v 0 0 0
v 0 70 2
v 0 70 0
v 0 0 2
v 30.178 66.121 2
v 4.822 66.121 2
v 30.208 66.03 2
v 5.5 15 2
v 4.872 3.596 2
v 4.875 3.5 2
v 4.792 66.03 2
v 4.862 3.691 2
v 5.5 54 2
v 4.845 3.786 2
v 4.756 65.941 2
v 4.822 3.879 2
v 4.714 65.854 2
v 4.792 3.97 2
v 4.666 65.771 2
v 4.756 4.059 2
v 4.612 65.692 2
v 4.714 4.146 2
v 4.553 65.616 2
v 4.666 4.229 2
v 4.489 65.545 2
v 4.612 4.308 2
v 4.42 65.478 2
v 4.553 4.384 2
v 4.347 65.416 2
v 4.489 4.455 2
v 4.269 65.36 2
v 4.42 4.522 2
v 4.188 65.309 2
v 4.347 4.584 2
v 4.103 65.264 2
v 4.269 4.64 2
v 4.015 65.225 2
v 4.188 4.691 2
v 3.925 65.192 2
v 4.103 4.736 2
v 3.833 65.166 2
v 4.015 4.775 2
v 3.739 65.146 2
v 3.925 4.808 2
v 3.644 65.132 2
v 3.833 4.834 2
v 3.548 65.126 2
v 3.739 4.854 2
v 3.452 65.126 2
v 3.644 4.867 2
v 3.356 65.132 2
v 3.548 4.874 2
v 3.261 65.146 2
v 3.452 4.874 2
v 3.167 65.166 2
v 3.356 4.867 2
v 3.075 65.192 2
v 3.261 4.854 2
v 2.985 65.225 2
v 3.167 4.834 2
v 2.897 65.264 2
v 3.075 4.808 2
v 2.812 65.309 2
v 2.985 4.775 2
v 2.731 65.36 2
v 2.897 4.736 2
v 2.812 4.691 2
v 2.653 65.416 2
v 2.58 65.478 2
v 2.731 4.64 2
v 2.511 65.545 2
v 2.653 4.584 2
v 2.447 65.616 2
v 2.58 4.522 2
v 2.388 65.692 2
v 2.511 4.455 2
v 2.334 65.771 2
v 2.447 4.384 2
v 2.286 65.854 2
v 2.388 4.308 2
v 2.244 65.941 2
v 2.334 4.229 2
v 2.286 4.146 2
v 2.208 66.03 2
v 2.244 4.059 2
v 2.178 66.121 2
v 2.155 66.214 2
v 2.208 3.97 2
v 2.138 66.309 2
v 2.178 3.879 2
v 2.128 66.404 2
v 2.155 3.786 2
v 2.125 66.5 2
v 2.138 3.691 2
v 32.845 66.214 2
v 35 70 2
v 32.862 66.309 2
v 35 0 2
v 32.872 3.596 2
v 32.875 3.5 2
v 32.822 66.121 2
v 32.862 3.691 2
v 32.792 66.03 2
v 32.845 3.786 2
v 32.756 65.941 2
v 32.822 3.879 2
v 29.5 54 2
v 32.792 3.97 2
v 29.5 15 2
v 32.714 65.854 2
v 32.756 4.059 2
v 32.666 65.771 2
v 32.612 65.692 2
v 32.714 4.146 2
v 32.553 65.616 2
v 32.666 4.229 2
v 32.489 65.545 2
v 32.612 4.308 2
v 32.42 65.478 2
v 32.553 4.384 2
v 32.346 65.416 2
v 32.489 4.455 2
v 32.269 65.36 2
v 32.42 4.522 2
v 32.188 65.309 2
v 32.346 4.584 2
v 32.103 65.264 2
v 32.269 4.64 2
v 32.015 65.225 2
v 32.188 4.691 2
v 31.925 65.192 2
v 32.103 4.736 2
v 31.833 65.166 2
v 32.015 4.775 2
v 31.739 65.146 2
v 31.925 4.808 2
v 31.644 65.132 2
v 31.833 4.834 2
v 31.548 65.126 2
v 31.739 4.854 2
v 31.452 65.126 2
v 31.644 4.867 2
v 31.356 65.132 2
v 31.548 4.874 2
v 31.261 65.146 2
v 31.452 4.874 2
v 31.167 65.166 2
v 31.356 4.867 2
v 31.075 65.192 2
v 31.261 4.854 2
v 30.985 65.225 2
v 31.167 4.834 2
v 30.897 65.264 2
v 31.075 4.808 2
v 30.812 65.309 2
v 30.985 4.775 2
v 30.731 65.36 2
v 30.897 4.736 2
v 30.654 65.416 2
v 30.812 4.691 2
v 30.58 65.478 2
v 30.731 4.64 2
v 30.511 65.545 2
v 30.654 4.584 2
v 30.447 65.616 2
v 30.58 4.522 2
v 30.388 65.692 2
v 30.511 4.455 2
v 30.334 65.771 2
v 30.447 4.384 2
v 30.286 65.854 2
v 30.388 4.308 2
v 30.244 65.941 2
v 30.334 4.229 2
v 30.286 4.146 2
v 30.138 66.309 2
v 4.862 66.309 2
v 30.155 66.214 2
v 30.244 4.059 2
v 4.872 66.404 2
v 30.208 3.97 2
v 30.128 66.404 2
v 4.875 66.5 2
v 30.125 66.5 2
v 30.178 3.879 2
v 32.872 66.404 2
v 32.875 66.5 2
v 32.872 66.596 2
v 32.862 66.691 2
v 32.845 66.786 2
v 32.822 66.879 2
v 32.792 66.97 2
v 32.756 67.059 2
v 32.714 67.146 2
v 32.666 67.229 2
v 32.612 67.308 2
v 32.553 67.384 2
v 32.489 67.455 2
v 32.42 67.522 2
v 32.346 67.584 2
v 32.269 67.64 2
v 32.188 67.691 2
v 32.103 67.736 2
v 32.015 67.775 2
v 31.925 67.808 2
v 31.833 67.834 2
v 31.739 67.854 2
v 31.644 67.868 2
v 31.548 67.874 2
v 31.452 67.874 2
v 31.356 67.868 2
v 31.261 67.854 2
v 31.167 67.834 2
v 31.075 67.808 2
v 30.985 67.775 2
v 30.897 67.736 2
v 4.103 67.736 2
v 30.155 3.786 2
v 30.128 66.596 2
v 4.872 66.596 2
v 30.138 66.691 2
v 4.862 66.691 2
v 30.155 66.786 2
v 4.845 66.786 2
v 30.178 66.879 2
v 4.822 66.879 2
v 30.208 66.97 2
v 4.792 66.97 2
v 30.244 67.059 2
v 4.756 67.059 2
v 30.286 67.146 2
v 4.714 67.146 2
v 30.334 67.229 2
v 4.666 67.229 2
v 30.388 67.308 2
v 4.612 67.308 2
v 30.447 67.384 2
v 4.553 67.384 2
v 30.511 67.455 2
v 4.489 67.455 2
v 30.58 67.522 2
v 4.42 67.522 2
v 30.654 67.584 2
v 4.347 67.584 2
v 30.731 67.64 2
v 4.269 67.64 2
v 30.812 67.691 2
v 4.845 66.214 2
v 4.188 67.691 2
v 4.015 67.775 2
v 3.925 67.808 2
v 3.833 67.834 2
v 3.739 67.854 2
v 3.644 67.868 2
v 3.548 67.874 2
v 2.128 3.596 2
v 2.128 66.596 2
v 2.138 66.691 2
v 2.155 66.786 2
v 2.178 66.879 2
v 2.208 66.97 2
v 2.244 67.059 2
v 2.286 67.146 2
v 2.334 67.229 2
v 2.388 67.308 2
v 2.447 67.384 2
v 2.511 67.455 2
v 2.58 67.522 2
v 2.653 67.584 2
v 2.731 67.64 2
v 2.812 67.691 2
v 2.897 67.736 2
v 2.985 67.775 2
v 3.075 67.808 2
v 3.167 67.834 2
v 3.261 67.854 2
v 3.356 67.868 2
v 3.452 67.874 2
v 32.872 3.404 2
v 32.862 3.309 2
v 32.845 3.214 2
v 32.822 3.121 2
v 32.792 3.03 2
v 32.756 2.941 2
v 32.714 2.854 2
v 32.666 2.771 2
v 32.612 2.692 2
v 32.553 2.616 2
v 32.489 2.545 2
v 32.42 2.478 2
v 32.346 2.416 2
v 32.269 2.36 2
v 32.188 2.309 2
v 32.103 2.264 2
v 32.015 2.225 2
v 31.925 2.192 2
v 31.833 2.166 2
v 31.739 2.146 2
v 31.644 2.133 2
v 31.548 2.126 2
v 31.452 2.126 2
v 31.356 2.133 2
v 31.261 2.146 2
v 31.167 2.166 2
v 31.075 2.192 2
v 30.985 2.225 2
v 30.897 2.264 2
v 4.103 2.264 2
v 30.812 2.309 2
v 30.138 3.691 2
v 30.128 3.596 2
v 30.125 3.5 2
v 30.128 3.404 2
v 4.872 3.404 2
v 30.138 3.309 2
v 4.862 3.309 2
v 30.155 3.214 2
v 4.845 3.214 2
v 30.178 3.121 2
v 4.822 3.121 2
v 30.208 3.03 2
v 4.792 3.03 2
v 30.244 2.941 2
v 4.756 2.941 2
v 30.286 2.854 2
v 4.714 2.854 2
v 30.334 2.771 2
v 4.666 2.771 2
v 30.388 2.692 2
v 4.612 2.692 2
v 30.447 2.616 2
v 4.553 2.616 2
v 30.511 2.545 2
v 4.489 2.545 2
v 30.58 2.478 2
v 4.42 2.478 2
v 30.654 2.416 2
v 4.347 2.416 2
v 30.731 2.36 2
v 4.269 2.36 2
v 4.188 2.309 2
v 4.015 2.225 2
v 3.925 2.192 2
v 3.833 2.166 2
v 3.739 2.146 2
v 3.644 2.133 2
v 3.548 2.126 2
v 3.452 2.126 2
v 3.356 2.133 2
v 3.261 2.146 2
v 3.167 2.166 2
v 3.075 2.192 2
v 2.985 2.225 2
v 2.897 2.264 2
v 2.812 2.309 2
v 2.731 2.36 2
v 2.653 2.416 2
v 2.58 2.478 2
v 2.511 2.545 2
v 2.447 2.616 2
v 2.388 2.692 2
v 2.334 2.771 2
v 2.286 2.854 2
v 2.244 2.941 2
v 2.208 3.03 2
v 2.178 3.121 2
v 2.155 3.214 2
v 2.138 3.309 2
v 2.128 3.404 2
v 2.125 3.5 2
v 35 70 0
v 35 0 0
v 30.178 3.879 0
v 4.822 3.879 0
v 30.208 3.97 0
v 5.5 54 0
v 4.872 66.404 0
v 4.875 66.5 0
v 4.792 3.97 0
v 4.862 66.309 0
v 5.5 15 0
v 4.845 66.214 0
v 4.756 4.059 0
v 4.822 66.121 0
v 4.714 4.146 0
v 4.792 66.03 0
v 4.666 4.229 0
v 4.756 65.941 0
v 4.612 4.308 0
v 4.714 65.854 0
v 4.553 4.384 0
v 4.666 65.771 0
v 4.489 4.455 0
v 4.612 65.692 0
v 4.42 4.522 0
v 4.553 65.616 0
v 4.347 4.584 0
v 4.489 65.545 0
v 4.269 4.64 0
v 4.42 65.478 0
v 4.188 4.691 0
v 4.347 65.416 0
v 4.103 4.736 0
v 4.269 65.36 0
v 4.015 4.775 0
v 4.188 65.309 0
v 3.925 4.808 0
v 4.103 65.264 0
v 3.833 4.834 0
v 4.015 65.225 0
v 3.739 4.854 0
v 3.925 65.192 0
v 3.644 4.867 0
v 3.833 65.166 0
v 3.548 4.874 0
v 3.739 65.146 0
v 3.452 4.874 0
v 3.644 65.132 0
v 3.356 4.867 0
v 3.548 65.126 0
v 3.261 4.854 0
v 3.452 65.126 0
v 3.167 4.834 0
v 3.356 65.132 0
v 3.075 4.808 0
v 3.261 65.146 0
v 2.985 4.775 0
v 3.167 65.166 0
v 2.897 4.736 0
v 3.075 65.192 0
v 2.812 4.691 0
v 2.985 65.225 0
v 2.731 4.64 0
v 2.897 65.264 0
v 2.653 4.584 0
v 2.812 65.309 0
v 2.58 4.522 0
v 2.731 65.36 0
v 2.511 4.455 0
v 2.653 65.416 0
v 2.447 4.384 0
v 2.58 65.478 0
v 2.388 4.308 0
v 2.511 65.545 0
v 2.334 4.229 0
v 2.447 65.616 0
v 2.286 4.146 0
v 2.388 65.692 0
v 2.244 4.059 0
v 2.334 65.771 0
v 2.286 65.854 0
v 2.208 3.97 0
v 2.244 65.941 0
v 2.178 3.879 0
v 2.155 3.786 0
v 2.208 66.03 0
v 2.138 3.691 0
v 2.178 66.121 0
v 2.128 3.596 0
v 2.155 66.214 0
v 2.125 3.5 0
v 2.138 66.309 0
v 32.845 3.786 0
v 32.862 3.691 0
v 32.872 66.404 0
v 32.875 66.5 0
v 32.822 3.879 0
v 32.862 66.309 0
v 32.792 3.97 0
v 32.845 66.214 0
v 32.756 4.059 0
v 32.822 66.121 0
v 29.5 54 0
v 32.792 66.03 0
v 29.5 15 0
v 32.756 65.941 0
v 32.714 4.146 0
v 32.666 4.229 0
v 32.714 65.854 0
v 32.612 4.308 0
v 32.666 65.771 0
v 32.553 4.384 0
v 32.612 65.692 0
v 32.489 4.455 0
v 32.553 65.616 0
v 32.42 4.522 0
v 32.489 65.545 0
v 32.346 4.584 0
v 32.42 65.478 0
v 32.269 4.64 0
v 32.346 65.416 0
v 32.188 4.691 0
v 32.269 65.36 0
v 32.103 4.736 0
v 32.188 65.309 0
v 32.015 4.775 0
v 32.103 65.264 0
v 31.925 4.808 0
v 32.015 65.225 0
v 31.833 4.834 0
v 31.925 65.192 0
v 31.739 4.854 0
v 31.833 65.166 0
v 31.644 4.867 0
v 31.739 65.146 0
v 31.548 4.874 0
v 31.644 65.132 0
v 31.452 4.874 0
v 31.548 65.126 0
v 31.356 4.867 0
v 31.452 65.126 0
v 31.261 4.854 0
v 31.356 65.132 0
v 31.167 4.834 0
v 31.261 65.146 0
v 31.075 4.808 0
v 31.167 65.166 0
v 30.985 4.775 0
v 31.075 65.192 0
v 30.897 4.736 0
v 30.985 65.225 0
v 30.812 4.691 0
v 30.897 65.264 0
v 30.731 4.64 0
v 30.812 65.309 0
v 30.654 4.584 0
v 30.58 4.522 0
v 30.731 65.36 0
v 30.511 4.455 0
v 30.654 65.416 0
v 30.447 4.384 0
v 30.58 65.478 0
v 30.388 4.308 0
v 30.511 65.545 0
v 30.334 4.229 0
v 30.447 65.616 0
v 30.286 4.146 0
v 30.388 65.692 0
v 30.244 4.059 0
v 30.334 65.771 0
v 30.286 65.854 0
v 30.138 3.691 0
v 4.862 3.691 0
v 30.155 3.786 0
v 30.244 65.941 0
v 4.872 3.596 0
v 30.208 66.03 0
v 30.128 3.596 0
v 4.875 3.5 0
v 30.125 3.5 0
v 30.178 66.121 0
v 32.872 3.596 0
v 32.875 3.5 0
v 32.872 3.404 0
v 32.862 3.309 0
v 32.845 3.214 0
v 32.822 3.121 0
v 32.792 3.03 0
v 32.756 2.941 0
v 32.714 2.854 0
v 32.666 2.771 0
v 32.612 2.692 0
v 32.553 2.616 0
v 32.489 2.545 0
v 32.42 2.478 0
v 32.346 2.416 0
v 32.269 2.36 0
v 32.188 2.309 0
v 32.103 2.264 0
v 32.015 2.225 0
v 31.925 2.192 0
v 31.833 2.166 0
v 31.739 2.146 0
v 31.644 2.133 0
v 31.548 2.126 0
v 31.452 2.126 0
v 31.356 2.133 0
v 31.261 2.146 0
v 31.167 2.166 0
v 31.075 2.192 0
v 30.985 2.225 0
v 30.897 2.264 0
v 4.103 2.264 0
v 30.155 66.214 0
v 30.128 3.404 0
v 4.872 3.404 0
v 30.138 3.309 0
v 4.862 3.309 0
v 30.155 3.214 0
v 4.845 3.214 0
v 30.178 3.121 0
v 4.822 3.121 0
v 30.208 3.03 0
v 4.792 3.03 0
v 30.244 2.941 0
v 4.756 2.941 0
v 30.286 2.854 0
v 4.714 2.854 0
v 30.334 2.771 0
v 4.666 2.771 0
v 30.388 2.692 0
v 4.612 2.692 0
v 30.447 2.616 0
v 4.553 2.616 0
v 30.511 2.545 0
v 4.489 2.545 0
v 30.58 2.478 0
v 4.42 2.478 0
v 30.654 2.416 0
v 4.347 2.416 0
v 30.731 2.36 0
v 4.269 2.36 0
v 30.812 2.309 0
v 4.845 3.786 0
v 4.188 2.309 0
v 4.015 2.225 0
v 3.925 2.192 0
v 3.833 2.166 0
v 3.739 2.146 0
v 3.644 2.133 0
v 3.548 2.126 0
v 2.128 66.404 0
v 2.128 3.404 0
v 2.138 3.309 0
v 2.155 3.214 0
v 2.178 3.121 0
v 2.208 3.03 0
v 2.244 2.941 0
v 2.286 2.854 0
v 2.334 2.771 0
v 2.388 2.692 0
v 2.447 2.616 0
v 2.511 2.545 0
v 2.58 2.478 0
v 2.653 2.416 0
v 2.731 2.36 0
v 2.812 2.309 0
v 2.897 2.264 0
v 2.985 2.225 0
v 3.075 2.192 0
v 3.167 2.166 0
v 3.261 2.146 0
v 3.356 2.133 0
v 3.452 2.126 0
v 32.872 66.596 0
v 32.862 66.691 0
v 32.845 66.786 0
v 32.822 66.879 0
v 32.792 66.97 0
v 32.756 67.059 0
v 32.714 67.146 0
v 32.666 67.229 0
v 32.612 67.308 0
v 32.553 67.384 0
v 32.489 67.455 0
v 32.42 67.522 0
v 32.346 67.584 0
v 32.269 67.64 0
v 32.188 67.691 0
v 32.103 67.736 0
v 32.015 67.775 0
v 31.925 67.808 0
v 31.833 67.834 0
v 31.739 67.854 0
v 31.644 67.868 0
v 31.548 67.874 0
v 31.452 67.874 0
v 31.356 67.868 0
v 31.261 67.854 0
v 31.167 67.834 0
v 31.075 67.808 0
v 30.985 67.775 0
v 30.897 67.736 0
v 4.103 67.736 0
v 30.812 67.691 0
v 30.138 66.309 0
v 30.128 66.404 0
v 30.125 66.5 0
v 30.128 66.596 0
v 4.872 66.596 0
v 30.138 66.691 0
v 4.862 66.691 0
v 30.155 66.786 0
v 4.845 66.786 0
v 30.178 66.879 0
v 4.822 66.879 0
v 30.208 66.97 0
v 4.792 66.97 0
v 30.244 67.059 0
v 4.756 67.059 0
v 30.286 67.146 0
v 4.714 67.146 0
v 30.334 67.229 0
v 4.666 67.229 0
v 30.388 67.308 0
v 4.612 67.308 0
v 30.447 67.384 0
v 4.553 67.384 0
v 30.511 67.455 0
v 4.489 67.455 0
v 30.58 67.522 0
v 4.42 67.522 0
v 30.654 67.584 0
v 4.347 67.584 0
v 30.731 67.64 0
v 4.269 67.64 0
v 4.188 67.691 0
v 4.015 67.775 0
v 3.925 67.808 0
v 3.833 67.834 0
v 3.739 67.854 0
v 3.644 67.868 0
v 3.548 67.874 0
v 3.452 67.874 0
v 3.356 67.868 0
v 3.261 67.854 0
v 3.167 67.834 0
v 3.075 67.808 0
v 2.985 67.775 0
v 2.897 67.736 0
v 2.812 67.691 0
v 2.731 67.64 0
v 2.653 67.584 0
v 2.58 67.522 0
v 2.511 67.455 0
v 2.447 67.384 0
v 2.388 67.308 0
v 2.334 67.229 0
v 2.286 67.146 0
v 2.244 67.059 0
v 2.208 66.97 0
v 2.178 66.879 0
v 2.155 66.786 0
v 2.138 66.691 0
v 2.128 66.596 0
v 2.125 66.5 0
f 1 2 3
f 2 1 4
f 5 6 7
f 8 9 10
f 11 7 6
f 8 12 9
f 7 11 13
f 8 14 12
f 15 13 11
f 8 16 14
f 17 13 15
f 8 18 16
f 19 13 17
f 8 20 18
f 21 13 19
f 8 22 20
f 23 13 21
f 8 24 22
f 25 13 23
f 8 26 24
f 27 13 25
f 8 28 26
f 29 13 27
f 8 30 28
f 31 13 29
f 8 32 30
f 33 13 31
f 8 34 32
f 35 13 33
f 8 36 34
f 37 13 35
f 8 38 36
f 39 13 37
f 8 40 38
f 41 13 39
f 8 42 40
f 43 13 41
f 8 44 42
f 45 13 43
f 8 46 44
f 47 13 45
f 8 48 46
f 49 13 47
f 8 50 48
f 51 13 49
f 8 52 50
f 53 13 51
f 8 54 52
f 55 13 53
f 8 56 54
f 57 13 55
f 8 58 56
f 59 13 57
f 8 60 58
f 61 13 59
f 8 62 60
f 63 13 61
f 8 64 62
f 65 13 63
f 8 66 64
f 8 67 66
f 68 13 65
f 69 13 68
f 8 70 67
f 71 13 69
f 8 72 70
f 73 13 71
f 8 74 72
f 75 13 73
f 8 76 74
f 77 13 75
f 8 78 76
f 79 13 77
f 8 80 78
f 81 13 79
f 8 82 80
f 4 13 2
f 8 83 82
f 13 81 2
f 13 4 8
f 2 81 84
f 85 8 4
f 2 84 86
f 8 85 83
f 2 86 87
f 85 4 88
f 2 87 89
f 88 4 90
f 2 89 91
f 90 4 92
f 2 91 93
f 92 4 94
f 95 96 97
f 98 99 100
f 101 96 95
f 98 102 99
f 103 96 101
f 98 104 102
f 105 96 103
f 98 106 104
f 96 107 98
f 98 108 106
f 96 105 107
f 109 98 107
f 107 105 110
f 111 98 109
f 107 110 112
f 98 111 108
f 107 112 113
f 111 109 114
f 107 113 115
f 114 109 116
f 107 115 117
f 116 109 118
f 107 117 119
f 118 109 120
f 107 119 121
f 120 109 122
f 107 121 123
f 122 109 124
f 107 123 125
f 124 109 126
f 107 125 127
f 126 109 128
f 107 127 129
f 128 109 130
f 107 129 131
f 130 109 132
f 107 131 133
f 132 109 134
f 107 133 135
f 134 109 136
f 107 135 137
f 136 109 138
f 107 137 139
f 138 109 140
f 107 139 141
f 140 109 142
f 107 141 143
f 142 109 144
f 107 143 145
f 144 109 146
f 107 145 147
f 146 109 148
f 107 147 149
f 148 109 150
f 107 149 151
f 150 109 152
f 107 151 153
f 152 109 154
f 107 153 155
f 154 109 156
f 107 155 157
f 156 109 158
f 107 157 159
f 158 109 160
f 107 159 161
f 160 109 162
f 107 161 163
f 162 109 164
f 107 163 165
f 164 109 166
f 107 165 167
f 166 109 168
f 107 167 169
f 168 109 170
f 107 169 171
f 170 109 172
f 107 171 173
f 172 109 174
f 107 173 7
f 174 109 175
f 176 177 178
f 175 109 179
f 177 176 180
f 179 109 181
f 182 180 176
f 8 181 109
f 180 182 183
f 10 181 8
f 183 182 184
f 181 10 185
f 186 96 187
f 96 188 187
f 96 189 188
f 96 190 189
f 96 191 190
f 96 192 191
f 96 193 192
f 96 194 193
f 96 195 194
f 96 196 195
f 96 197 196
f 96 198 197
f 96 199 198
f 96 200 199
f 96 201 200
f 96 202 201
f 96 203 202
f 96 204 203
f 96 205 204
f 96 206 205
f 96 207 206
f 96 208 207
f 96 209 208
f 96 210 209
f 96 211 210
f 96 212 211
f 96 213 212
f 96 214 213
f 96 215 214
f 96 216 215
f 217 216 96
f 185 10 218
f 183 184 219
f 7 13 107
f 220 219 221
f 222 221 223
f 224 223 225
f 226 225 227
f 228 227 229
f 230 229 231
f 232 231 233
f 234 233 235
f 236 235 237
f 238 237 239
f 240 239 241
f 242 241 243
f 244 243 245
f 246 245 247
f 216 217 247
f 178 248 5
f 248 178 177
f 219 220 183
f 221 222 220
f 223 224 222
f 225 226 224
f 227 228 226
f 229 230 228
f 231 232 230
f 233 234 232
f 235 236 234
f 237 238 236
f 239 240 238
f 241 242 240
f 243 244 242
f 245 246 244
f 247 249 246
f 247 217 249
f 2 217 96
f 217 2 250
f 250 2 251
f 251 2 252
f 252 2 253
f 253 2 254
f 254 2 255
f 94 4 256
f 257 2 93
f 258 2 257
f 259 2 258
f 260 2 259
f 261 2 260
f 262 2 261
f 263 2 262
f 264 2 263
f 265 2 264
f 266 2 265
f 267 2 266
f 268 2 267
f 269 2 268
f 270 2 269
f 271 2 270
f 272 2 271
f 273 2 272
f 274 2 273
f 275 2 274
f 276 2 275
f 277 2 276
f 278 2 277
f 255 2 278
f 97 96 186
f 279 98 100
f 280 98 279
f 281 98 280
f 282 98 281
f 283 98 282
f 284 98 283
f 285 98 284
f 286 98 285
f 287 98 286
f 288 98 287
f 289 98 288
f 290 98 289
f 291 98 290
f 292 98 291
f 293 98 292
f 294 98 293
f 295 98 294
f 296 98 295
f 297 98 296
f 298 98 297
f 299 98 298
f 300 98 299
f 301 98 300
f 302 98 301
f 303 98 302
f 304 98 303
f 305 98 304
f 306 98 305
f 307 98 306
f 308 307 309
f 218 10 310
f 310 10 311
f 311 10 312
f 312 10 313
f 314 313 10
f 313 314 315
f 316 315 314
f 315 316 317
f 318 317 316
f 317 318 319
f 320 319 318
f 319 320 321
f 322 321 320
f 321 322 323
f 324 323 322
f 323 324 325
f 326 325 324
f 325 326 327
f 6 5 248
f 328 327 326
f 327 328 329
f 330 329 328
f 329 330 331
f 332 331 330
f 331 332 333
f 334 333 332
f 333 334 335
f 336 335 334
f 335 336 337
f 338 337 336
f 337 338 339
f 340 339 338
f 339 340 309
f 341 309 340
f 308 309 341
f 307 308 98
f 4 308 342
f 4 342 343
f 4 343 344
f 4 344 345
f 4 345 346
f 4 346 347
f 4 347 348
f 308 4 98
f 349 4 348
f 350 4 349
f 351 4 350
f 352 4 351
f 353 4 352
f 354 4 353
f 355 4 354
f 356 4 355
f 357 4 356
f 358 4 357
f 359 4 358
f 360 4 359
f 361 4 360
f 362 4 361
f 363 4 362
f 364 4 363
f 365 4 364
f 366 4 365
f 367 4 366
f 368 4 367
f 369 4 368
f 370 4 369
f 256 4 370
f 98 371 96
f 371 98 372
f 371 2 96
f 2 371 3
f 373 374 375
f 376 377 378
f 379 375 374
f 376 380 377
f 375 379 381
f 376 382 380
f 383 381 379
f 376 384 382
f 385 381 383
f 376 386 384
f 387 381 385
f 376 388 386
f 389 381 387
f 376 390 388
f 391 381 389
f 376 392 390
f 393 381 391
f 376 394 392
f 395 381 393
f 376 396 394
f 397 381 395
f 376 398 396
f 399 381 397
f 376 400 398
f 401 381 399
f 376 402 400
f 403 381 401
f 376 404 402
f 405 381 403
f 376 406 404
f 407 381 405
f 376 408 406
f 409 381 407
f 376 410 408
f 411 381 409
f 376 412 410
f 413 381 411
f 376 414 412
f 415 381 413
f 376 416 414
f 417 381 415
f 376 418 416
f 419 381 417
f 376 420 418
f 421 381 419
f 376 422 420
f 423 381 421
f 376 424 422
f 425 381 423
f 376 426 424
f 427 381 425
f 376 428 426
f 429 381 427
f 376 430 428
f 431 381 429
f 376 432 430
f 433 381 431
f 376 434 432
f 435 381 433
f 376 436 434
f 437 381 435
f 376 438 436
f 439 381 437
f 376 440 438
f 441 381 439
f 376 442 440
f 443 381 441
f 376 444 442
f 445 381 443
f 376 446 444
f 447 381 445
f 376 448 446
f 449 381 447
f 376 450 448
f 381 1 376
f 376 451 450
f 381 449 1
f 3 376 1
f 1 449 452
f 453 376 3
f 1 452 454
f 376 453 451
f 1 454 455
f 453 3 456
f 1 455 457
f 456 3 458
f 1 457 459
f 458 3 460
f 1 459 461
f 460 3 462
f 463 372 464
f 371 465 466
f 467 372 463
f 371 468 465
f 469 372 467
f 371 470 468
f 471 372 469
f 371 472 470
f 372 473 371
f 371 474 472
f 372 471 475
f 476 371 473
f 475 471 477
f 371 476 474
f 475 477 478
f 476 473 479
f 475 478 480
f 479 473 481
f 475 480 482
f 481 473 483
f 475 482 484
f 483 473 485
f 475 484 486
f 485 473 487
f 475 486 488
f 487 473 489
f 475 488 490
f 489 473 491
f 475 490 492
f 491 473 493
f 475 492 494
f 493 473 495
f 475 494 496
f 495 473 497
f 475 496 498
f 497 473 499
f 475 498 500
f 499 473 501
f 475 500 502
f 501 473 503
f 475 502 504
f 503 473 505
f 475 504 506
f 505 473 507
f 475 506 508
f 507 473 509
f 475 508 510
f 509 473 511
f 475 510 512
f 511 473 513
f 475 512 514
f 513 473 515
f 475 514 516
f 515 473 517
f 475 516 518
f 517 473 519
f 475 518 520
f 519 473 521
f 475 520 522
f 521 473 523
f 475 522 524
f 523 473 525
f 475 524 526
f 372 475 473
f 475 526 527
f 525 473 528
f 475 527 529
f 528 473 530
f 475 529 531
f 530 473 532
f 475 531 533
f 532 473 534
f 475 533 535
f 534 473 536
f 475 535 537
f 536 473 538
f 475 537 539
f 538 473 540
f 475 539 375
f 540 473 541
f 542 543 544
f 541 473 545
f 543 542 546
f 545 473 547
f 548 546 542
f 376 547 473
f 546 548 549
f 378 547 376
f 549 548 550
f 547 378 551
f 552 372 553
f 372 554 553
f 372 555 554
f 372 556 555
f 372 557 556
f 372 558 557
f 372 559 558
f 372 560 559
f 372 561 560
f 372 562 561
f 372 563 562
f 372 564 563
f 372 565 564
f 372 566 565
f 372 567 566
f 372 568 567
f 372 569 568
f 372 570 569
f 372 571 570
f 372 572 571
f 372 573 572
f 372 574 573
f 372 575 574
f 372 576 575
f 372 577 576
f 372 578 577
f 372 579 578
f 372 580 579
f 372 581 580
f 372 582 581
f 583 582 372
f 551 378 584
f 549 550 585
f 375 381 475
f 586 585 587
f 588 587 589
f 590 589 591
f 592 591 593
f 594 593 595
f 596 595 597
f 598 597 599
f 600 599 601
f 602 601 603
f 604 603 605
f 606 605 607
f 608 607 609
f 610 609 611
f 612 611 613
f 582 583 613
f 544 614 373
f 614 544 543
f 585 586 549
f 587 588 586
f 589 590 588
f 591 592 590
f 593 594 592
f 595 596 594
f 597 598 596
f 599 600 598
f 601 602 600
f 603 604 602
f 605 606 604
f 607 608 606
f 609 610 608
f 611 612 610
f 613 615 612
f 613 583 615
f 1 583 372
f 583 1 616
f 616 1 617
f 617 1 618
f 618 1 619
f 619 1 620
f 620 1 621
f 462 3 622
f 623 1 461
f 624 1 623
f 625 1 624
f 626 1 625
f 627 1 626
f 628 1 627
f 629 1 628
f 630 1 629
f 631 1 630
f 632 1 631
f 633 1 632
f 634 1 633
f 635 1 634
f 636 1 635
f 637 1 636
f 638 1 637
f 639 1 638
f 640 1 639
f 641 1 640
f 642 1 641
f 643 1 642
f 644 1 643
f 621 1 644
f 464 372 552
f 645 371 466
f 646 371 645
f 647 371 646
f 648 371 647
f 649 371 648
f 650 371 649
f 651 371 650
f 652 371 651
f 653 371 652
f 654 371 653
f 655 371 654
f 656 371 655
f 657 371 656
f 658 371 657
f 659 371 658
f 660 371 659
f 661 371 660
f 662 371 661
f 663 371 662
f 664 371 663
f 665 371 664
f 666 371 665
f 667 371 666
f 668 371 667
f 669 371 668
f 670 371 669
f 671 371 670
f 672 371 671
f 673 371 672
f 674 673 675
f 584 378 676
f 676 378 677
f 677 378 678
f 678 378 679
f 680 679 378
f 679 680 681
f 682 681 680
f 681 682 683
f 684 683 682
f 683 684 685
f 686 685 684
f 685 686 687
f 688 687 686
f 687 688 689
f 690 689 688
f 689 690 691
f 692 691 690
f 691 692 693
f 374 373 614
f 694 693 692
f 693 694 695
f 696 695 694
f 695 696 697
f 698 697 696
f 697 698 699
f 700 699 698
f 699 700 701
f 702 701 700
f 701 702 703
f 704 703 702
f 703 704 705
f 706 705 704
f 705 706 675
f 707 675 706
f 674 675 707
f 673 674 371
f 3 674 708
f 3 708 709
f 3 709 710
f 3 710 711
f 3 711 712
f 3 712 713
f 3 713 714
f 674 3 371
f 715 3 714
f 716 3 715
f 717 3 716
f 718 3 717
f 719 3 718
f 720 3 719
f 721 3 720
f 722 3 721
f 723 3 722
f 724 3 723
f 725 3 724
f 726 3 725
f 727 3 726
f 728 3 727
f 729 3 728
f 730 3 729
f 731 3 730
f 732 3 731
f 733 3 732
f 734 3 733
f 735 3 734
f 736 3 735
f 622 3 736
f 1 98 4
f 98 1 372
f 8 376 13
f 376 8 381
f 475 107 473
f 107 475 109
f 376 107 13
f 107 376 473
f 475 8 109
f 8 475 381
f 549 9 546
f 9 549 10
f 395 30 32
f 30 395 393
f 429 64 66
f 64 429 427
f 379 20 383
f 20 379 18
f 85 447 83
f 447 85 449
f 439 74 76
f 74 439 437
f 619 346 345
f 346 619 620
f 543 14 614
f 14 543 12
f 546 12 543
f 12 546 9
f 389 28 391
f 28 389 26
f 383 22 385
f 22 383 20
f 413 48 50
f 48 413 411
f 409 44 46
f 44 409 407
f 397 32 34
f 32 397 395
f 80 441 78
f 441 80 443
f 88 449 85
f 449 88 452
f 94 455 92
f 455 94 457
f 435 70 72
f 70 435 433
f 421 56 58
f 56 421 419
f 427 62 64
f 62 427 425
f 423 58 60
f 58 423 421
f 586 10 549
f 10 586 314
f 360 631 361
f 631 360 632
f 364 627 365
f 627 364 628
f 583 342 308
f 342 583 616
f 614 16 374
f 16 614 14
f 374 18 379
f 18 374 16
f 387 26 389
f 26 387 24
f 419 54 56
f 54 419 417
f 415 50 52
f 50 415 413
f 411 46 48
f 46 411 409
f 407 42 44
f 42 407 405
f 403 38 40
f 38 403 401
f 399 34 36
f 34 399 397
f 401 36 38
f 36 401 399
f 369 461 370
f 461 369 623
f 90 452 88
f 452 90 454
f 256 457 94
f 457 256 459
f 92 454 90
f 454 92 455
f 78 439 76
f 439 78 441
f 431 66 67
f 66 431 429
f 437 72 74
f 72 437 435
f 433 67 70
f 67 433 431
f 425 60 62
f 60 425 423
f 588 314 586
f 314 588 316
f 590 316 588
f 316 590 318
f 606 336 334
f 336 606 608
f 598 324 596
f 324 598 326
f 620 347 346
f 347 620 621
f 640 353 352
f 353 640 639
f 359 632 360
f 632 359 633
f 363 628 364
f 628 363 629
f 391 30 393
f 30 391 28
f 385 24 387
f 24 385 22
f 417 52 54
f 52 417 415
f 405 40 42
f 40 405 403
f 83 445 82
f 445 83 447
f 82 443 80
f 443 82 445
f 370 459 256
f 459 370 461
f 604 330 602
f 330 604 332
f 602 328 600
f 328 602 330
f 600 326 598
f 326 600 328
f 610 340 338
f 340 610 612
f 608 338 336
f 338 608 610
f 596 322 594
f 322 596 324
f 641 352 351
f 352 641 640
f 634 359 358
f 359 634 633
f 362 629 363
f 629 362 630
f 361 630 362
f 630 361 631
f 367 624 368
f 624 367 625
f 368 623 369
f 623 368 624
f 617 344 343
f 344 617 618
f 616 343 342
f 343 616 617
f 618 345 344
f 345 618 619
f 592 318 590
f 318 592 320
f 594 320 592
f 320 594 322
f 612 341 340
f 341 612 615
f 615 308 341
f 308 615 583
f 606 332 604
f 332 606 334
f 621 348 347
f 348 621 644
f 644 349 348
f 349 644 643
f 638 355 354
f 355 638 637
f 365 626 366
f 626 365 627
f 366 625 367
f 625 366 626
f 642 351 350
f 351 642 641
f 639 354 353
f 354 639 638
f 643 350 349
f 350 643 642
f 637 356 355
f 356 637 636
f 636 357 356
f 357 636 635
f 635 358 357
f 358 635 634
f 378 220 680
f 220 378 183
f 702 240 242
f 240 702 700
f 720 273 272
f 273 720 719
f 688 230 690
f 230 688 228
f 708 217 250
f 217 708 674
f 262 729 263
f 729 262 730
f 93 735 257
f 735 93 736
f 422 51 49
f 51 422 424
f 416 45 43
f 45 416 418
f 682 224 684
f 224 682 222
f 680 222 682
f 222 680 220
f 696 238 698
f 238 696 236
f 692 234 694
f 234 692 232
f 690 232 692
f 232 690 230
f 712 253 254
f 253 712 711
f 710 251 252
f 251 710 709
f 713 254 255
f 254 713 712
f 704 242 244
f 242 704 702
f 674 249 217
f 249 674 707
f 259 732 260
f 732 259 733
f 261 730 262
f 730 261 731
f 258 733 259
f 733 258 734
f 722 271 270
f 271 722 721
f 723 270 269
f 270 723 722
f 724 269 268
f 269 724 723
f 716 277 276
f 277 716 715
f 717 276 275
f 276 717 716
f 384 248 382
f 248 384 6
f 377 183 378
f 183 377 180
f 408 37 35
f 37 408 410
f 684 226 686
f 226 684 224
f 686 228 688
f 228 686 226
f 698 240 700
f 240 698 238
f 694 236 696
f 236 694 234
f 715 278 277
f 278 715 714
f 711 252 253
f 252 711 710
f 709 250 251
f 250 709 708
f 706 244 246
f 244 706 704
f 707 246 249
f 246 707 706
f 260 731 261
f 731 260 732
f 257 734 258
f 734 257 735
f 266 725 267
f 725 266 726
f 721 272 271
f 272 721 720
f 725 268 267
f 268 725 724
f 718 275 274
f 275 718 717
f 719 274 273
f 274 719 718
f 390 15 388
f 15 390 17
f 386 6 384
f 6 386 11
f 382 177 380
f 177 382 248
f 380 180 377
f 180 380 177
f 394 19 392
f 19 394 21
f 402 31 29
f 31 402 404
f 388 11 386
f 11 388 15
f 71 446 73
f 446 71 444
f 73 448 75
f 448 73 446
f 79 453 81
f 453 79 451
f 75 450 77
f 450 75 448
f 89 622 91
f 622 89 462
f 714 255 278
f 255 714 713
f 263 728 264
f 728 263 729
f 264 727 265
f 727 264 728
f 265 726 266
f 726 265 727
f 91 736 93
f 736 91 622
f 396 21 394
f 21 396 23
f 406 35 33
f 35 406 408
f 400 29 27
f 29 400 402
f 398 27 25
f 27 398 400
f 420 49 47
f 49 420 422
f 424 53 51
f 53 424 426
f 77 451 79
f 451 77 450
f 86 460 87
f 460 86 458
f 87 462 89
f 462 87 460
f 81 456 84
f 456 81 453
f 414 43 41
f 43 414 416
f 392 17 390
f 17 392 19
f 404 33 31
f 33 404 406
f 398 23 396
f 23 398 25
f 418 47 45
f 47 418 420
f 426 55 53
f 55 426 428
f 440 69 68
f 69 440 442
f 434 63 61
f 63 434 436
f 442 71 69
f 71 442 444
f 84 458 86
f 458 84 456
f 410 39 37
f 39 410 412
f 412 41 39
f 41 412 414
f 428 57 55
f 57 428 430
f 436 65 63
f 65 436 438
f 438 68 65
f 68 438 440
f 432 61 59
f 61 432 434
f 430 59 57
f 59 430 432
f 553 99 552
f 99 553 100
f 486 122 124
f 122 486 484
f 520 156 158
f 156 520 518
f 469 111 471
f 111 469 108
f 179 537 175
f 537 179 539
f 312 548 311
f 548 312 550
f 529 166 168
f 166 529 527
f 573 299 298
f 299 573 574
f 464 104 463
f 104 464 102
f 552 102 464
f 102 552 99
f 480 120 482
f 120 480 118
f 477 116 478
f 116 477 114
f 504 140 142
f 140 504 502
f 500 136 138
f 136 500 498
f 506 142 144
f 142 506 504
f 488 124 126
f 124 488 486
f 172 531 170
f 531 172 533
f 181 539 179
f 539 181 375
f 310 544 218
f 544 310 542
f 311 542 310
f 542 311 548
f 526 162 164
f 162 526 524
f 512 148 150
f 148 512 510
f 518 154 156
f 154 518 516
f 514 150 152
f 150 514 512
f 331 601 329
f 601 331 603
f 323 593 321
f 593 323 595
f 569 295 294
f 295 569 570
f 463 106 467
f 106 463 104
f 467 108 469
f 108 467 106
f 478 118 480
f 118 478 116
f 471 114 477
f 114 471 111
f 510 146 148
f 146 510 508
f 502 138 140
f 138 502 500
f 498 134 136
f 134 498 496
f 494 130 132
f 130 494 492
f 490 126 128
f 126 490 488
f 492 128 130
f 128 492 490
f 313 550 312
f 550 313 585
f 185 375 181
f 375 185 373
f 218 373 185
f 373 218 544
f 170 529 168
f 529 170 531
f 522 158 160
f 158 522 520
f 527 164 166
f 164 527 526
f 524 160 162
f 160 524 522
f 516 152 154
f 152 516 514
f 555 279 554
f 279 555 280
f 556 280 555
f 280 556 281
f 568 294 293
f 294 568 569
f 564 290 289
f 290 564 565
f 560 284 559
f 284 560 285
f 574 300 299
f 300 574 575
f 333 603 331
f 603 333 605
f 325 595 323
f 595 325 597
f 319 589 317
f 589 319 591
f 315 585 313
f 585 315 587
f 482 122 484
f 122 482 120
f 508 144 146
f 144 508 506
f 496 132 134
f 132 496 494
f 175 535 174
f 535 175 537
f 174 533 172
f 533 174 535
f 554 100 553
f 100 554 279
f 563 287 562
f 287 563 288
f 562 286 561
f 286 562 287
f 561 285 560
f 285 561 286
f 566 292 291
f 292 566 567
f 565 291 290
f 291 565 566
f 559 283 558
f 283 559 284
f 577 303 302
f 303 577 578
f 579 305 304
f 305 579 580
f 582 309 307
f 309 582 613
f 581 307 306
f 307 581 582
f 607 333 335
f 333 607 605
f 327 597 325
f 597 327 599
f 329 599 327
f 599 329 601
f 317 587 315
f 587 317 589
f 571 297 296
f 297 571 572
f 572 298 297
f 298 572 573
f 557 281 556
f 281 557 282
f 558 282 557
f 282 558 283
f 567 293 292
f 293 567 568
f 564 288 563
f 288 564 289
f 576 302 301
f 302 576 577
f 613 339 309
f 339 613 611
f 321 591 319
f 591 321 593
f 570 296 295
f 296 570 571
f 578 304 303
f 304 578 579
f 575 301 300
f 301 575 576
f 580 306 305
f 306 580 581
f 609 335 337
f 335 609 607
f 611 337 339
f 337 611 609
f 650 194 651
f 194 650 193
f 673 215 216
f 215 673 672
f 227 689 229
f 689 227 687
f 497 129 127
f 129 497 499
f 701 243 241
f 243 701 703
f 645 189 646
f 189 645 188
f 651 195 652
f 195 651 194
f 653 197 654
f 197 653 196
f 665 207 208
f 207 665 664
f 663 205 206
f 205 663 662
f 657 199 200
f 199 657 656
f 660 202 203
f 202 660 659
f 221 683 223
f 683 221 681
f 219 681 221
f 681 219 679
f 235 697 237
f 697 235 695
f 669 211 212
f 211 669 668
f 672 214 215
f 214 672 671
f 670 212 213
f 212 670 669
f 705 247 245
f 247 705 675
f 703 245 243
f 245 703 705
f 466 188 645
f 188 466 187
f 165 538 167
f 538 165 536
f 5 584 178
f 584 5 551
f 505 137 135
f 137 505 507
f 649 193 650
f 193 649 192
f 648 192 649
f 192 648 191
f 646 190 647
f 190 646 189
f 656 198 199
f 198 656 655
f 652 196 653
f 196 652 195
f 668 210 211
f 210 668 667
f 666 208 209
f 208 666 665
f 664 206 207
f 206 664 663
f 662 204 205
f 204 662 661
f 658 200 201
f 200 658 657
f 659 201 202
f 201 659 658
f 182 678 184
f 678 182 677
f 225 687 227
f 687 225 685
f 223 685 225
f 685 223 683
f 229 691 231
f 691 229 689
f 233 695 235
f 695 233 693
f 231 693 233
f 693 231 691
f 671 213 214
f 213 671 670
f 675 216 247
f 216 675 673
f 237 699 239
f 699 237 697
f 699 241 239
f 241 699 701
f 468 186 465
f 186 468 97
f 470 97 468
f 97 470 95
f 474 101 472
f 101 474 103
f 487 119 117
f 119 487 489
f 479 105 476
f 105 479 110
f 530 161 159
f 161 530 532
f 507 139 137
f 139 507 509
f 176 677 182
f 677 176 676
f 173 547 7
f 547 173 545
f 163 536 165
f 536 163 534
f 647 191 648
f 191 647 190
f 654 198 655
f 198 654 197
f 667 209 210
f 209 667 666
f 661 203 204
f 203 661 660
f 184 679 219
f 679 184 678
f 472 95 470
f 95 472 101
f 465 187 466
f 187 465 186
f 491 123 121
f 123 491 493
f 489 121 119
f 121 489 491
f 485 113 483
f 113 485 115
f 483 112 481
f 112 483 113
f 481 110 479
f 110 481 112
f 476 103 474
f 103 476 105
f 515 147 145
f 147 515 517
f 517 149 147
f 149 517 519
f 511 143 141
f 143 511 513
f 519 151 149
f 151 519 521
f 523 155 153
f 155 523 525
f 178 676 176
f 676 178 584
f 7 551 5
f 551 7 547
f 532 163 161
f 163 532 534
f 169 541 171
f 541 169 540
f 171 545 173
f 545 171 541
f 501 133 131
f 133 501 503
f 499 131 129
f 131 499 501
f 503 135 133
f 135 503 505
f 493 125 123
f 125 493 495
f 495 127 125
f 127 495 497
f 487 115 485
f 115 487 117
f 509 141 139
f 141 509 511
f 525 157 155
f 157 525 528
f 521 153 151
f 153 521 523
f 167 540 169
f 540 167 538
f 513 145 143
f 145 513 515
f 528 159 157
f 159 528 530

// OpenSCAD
$fn = 90;

// Placa
lx = 35;
ly = 70;
lz = 2;

// Agujero
lx1 = 24;
ly1 = 39;
lz1 = lz;

// Tornillos
r = 2.75/2;
h = lz;
d = 3.5;


difference() {
  cube([lx, ly, lz]);

  // Agujero
  translate([(lx-lx1)/2, 15, 0]) cube([lx1, ly1, lz1]);

  // Tornillos
  translate([d, d, 0]) cylinder(r=r, h=h);
  translate([d, ly-d, 0]) cylinder(r=r, h=h);
  translate([lx-d, d, 0]) cylinder(r=r, h=h);
  translate([lx-d, ly-d, 0]) cylinder(r=r, h=h);
}
